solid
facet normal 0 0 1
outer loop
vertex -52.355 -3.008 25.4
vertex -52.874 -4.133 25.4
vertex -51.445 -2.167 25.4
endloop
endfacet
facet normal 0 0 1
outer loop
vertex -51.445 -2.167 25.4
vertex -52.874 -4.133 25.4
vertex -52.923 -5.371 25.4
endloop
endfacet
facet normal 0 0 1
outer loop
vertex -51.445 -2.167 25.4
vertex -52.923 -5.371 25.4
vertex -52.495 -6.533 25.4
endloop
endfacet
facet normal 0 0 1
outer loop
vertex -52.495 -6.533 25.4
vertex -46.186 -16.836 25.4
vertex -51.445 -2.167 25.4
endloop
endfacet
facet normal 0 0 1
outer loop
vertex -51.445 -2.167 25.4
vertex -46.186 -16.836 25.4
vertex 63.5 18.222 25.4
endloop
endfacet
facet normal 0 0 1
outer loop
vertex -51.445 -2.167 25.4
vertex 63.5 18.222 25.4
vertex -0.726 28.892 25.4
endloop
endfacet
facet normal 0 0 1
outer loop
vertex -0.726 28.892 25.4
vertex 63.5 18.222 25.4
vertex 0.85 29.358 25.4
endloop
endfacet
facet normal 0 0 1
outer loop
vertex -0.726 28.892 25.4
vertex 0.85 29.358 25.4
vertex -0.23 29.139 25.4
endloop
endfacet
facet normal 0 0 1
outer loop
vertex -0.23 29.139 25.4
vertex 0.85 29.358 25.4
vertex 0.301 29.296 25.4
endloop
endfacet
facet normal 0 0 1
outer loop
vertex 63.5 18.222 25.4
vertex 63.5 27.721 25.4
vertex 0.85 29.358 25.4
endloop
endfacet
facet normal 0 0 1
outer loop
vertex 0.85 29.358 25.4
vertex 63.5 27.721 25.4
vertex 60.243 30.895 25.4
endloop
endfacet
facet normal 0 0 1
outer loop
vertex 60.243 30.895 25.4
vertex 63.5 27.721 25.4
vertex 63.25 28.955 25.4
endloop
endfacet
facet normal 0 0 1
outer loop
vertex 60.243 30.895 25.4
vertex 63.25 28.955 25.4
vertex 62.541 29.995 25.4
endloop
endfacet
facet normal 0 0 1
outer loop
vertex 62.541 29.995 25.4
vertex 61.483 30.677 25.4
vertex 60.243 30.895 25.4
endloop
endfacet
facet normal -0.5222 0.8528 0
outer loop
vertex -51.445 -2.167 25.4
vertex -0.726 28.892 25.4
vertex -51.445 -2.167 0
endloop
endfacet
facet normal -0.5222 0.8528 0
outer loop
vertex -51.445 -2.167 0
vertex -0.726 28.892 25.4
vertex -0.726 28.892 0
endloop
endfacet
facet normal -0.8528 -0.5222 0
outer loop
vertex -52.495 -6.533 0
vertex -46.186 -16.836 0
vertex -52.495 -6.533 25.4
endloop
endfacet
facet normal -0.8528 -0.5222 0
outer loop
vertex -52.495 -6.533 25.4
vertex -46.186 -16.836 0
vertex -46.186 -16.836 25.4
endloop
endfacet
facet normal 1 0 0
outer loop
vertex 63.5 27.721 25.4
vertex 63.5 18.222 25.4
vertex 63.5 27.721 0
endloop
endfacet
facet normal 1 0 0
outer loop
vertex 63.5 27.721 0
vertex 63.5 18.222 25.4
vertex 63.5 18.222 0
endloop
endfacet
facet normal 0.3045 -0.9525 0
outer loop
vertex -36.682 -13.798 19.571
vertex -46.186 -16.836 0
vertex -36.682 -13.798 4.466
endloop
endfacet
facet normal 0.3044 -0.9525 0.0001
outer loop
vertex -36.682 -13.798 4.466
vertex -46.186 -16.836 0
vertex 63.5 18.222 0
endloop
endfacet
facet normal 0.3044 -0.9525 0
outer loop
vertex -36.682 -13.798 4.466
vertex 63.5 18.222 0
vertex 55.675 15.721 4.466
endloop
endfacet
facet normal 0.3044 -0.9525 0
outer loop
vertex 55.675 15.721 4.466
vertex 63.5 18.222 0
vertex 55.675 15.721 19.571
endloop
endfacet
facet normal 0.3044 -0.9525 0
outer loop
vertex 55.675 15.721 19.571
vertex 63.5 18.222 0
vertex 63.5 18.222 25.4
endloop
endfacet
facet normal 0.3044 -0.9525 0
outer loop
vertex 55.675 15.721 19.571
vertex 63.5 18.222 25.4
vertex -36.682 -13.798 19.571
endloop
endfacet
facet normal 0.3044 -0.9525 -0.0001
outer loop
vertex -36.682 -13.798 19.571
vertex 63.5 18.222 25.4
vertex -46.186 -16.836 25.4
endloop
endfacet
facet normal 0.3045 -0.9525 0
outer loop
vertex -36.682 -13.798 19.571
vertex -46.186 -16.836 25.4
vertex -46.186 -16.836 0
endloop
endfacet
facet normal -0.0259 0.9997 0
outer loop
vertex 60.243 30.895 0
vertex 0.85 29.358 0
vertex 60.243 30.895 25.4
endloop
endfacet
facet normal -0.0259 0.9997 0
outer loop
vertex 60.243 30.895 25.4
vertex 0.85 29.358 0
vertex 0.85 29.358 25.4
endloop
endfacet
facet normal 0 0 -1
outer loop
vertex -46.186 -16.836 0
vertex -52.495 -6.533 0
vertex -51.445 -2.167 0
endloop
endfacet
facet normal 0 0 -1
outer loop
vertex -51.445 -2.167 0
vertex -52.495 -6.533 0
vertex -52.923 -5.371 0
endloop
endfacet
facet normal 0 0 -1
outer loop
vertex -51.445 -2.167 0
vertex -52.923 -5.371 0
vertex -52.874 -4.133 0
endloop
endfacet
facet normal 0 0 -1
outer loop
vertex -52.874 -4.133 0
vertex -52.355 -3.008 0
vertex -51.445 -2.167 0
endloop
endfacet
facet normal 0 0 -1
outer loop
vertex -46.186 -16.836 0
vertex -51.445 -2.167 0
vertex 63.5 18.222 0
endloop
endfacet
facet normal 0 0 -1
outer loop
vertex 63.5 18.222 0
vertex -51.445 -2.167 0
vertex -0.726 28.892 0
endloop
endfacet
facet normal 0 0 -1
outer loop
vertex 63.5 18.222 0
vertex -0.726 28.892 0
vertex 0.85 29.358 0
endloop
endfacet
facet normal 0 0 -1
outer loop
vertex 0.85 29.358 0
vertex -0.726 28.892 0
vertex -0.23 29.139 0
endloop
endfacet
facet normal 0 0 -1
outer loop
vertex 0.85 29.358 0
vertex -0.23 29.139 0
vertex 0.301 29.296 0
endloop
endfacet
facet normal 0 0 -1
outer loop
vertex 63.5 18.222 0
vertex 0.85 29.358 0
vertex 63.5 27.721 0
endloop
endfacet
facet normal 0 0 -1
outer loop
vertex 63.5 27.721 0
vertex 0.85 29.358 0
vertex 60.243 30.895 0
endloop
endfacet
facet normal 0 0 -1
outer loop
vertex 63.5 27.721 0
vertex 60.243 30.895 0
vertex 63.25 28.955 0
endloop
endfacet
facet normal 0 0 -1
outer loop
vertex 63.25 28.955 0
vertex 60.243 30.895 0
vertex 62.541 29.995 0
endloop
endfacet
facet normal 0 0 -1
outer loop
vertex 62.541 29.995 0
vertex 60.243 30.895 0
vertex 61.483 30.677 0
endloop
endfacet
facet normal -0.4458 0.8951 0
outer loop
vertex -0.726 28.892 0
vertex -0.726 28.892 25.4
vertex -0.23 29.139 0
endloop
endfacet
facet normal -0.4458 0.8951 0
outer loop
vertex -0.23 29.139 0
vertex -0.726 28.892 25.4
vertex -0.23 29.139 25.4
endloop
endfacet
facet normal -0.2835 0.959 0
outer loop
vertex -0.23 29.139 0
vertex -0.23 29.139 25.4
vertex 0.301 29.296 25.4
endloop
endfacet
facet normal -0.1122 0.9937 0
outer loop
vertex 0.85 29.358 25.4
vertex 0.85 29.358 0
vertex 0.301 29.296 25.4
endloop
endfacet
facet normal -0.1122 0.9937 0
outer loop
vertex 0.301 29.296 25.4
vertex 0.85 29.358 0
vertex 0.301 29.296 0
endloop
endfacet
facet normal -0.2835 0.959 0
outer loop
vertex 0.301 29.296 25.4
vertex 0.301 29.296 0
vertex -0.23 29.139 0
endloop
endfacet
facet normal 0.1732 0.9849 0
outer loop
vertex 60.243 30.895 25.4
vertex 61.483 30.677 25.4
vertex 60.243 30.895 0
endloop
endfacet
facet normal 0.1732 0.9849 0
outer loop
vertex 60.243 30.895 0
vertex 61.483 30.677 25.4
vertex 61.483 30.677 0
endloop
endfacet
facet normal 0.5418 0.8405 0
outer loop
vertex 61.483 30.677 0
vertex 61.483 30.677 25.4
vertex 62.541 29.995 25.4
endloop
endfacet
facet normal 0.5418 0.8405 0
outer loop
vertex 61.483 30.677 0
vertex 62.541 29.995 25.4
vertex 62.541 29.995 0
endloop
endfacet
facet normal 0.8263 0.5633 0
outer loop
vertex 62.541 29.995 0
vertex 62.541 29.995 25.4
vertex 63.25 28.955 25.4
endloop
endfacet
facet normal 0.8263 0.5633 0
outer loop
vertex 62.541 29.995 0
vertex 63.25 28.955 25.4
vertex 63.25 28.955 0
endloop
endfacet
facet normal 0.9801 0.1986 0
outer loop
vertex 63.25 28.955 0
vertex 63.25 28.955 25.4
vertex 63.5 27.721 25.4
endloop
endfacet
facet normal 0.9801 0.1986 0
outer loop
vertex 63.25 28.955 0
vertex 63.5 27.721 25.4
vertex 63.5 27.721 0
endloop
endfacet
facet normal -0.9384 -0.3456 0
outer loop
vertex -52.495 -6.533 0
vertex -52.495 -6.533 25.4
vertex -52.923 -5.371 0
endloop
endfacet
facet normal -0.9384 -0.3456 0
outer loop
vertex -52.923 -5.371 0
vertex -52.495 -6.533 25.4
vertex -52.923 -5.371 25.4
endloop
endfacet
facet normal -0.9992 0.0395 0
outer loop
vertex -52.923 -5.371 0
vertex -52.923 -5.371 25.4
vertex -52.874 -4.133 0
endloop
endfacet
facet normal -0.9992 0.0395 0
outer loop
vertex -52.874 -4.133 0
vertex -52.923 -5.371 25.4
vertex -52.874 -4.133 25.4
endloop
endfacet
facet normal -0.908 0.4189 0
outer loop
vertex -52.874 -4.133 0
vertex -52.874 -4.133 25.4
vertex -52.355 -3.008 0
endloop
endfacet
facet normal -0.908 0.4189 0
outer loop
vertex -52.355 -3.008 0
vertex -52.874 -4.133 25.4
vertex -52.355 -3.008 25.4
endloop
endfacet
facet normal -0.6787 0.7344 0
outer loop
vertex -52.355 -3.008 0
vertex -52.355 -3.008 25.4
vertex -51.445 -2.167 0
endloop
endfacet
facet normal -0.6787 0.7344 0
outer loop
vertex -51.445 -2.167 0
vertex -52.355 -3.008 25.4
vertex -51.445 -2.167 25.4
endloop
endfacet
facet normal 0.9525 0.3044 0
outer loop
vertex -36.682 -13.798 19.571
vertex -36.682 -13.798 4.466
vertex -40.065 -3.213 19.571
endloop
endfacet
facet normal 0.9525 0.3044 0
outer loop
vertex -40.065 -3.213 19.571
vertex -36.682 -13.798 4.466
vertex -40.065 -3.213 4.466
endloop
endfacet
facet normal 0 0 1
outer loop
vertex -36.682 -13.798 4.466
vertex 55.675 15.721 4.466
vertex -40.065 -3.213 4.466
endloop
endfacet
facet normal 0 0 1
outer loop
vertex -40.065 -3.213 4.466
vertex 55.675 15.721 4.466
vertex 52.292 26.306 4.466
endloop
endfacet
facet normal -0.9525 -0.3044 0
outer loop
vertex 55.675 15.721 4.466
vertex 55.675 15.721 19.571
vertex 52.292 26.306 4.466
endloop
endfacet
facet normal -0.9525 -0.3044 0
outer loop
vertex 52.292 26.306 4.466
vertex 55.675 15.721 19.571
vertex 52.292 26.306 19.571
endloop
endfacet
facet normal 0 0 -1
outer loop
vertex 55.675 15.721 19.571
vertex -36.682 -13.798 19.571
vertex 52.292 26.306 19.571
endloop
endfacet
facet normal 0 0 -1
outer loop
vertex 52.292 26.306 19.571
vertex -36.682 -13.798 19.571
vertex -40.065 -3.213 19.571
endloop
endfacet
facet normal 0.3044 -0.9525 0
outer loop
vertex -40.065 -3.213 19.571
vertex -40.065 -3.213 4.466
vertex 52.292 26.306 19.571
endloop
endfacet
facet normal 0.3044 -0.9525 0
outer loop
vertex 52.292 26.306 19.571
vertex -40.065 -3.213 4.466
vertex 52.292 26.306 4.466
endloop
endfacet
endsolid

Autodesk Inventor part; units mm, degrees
ref_plane "YZ Plane" through (0, 0, 0) normal (1, 0, 0) x (0, 1, 0)
ref_plane "XZ Plane" through (0, 0, 0) normal (0, 1, 0) x (-1, 0, 0)
ref_plane "XY Plane" through (0, 0, 0) normal (0, 0, 1) x (1, 0, 0)
sketch "Sketch1" plane through (0, 0, 0) normal (0, 0, 1) x (1, 0, 0)
  line L0 (-54.1531, -3.8255) -> (0, 29.3361)
  line L1 (0, 29.3361) -> (63.5, 30.9789)
  line L2 (-54.1531, -3.8255) -> (-46.1859, -16.836)
  line L3 (-46.1859, -16.836) -> (63.5, 18.2222)
  line L4 (63.5, 18.2222) -> (63.5, 30.9789)
  point P0 (0, 0)
  dimension "d0" = 150
  dimension "d1" = 63.5
  dimension "d2" = 63.5
extrude "Extrusion1" add sketch "Sketch1" along normal blind 25.4
fillet "Fillet1" radius 3.175 1 edges at (0, 29.3361, 12.7)
fillet "Fillet2" radius 3.175 1 edges at (63.5, 30.9789, 12.7)
fillet "Fillet3" radius 3.175 1 edges at (-54.1531, -3.8255, 12.7)
sketch "Sketch2" plane through (63.5, 18.2222, 0) normal (0.3045, -0.9525, 0) x (0.9525, 0.3045, 0)
  line L0 (-105.1746, 19.5706) -> (-8.2146, 19.5706)
  line L1 (-8.2146, 19.5706) -> (-8.2146, 4.4663)
  line L2 (-8.2146, 4.4663) -> (-105.1746, 4.4663)
  line L3 (-105.1746, 4.4663) -> (-105.1746, 19.5706)
  point P0 (-66.0333, 0)
extrude "Extrusion2" cut sketch "Sketch2" against normal blind 11.1125
